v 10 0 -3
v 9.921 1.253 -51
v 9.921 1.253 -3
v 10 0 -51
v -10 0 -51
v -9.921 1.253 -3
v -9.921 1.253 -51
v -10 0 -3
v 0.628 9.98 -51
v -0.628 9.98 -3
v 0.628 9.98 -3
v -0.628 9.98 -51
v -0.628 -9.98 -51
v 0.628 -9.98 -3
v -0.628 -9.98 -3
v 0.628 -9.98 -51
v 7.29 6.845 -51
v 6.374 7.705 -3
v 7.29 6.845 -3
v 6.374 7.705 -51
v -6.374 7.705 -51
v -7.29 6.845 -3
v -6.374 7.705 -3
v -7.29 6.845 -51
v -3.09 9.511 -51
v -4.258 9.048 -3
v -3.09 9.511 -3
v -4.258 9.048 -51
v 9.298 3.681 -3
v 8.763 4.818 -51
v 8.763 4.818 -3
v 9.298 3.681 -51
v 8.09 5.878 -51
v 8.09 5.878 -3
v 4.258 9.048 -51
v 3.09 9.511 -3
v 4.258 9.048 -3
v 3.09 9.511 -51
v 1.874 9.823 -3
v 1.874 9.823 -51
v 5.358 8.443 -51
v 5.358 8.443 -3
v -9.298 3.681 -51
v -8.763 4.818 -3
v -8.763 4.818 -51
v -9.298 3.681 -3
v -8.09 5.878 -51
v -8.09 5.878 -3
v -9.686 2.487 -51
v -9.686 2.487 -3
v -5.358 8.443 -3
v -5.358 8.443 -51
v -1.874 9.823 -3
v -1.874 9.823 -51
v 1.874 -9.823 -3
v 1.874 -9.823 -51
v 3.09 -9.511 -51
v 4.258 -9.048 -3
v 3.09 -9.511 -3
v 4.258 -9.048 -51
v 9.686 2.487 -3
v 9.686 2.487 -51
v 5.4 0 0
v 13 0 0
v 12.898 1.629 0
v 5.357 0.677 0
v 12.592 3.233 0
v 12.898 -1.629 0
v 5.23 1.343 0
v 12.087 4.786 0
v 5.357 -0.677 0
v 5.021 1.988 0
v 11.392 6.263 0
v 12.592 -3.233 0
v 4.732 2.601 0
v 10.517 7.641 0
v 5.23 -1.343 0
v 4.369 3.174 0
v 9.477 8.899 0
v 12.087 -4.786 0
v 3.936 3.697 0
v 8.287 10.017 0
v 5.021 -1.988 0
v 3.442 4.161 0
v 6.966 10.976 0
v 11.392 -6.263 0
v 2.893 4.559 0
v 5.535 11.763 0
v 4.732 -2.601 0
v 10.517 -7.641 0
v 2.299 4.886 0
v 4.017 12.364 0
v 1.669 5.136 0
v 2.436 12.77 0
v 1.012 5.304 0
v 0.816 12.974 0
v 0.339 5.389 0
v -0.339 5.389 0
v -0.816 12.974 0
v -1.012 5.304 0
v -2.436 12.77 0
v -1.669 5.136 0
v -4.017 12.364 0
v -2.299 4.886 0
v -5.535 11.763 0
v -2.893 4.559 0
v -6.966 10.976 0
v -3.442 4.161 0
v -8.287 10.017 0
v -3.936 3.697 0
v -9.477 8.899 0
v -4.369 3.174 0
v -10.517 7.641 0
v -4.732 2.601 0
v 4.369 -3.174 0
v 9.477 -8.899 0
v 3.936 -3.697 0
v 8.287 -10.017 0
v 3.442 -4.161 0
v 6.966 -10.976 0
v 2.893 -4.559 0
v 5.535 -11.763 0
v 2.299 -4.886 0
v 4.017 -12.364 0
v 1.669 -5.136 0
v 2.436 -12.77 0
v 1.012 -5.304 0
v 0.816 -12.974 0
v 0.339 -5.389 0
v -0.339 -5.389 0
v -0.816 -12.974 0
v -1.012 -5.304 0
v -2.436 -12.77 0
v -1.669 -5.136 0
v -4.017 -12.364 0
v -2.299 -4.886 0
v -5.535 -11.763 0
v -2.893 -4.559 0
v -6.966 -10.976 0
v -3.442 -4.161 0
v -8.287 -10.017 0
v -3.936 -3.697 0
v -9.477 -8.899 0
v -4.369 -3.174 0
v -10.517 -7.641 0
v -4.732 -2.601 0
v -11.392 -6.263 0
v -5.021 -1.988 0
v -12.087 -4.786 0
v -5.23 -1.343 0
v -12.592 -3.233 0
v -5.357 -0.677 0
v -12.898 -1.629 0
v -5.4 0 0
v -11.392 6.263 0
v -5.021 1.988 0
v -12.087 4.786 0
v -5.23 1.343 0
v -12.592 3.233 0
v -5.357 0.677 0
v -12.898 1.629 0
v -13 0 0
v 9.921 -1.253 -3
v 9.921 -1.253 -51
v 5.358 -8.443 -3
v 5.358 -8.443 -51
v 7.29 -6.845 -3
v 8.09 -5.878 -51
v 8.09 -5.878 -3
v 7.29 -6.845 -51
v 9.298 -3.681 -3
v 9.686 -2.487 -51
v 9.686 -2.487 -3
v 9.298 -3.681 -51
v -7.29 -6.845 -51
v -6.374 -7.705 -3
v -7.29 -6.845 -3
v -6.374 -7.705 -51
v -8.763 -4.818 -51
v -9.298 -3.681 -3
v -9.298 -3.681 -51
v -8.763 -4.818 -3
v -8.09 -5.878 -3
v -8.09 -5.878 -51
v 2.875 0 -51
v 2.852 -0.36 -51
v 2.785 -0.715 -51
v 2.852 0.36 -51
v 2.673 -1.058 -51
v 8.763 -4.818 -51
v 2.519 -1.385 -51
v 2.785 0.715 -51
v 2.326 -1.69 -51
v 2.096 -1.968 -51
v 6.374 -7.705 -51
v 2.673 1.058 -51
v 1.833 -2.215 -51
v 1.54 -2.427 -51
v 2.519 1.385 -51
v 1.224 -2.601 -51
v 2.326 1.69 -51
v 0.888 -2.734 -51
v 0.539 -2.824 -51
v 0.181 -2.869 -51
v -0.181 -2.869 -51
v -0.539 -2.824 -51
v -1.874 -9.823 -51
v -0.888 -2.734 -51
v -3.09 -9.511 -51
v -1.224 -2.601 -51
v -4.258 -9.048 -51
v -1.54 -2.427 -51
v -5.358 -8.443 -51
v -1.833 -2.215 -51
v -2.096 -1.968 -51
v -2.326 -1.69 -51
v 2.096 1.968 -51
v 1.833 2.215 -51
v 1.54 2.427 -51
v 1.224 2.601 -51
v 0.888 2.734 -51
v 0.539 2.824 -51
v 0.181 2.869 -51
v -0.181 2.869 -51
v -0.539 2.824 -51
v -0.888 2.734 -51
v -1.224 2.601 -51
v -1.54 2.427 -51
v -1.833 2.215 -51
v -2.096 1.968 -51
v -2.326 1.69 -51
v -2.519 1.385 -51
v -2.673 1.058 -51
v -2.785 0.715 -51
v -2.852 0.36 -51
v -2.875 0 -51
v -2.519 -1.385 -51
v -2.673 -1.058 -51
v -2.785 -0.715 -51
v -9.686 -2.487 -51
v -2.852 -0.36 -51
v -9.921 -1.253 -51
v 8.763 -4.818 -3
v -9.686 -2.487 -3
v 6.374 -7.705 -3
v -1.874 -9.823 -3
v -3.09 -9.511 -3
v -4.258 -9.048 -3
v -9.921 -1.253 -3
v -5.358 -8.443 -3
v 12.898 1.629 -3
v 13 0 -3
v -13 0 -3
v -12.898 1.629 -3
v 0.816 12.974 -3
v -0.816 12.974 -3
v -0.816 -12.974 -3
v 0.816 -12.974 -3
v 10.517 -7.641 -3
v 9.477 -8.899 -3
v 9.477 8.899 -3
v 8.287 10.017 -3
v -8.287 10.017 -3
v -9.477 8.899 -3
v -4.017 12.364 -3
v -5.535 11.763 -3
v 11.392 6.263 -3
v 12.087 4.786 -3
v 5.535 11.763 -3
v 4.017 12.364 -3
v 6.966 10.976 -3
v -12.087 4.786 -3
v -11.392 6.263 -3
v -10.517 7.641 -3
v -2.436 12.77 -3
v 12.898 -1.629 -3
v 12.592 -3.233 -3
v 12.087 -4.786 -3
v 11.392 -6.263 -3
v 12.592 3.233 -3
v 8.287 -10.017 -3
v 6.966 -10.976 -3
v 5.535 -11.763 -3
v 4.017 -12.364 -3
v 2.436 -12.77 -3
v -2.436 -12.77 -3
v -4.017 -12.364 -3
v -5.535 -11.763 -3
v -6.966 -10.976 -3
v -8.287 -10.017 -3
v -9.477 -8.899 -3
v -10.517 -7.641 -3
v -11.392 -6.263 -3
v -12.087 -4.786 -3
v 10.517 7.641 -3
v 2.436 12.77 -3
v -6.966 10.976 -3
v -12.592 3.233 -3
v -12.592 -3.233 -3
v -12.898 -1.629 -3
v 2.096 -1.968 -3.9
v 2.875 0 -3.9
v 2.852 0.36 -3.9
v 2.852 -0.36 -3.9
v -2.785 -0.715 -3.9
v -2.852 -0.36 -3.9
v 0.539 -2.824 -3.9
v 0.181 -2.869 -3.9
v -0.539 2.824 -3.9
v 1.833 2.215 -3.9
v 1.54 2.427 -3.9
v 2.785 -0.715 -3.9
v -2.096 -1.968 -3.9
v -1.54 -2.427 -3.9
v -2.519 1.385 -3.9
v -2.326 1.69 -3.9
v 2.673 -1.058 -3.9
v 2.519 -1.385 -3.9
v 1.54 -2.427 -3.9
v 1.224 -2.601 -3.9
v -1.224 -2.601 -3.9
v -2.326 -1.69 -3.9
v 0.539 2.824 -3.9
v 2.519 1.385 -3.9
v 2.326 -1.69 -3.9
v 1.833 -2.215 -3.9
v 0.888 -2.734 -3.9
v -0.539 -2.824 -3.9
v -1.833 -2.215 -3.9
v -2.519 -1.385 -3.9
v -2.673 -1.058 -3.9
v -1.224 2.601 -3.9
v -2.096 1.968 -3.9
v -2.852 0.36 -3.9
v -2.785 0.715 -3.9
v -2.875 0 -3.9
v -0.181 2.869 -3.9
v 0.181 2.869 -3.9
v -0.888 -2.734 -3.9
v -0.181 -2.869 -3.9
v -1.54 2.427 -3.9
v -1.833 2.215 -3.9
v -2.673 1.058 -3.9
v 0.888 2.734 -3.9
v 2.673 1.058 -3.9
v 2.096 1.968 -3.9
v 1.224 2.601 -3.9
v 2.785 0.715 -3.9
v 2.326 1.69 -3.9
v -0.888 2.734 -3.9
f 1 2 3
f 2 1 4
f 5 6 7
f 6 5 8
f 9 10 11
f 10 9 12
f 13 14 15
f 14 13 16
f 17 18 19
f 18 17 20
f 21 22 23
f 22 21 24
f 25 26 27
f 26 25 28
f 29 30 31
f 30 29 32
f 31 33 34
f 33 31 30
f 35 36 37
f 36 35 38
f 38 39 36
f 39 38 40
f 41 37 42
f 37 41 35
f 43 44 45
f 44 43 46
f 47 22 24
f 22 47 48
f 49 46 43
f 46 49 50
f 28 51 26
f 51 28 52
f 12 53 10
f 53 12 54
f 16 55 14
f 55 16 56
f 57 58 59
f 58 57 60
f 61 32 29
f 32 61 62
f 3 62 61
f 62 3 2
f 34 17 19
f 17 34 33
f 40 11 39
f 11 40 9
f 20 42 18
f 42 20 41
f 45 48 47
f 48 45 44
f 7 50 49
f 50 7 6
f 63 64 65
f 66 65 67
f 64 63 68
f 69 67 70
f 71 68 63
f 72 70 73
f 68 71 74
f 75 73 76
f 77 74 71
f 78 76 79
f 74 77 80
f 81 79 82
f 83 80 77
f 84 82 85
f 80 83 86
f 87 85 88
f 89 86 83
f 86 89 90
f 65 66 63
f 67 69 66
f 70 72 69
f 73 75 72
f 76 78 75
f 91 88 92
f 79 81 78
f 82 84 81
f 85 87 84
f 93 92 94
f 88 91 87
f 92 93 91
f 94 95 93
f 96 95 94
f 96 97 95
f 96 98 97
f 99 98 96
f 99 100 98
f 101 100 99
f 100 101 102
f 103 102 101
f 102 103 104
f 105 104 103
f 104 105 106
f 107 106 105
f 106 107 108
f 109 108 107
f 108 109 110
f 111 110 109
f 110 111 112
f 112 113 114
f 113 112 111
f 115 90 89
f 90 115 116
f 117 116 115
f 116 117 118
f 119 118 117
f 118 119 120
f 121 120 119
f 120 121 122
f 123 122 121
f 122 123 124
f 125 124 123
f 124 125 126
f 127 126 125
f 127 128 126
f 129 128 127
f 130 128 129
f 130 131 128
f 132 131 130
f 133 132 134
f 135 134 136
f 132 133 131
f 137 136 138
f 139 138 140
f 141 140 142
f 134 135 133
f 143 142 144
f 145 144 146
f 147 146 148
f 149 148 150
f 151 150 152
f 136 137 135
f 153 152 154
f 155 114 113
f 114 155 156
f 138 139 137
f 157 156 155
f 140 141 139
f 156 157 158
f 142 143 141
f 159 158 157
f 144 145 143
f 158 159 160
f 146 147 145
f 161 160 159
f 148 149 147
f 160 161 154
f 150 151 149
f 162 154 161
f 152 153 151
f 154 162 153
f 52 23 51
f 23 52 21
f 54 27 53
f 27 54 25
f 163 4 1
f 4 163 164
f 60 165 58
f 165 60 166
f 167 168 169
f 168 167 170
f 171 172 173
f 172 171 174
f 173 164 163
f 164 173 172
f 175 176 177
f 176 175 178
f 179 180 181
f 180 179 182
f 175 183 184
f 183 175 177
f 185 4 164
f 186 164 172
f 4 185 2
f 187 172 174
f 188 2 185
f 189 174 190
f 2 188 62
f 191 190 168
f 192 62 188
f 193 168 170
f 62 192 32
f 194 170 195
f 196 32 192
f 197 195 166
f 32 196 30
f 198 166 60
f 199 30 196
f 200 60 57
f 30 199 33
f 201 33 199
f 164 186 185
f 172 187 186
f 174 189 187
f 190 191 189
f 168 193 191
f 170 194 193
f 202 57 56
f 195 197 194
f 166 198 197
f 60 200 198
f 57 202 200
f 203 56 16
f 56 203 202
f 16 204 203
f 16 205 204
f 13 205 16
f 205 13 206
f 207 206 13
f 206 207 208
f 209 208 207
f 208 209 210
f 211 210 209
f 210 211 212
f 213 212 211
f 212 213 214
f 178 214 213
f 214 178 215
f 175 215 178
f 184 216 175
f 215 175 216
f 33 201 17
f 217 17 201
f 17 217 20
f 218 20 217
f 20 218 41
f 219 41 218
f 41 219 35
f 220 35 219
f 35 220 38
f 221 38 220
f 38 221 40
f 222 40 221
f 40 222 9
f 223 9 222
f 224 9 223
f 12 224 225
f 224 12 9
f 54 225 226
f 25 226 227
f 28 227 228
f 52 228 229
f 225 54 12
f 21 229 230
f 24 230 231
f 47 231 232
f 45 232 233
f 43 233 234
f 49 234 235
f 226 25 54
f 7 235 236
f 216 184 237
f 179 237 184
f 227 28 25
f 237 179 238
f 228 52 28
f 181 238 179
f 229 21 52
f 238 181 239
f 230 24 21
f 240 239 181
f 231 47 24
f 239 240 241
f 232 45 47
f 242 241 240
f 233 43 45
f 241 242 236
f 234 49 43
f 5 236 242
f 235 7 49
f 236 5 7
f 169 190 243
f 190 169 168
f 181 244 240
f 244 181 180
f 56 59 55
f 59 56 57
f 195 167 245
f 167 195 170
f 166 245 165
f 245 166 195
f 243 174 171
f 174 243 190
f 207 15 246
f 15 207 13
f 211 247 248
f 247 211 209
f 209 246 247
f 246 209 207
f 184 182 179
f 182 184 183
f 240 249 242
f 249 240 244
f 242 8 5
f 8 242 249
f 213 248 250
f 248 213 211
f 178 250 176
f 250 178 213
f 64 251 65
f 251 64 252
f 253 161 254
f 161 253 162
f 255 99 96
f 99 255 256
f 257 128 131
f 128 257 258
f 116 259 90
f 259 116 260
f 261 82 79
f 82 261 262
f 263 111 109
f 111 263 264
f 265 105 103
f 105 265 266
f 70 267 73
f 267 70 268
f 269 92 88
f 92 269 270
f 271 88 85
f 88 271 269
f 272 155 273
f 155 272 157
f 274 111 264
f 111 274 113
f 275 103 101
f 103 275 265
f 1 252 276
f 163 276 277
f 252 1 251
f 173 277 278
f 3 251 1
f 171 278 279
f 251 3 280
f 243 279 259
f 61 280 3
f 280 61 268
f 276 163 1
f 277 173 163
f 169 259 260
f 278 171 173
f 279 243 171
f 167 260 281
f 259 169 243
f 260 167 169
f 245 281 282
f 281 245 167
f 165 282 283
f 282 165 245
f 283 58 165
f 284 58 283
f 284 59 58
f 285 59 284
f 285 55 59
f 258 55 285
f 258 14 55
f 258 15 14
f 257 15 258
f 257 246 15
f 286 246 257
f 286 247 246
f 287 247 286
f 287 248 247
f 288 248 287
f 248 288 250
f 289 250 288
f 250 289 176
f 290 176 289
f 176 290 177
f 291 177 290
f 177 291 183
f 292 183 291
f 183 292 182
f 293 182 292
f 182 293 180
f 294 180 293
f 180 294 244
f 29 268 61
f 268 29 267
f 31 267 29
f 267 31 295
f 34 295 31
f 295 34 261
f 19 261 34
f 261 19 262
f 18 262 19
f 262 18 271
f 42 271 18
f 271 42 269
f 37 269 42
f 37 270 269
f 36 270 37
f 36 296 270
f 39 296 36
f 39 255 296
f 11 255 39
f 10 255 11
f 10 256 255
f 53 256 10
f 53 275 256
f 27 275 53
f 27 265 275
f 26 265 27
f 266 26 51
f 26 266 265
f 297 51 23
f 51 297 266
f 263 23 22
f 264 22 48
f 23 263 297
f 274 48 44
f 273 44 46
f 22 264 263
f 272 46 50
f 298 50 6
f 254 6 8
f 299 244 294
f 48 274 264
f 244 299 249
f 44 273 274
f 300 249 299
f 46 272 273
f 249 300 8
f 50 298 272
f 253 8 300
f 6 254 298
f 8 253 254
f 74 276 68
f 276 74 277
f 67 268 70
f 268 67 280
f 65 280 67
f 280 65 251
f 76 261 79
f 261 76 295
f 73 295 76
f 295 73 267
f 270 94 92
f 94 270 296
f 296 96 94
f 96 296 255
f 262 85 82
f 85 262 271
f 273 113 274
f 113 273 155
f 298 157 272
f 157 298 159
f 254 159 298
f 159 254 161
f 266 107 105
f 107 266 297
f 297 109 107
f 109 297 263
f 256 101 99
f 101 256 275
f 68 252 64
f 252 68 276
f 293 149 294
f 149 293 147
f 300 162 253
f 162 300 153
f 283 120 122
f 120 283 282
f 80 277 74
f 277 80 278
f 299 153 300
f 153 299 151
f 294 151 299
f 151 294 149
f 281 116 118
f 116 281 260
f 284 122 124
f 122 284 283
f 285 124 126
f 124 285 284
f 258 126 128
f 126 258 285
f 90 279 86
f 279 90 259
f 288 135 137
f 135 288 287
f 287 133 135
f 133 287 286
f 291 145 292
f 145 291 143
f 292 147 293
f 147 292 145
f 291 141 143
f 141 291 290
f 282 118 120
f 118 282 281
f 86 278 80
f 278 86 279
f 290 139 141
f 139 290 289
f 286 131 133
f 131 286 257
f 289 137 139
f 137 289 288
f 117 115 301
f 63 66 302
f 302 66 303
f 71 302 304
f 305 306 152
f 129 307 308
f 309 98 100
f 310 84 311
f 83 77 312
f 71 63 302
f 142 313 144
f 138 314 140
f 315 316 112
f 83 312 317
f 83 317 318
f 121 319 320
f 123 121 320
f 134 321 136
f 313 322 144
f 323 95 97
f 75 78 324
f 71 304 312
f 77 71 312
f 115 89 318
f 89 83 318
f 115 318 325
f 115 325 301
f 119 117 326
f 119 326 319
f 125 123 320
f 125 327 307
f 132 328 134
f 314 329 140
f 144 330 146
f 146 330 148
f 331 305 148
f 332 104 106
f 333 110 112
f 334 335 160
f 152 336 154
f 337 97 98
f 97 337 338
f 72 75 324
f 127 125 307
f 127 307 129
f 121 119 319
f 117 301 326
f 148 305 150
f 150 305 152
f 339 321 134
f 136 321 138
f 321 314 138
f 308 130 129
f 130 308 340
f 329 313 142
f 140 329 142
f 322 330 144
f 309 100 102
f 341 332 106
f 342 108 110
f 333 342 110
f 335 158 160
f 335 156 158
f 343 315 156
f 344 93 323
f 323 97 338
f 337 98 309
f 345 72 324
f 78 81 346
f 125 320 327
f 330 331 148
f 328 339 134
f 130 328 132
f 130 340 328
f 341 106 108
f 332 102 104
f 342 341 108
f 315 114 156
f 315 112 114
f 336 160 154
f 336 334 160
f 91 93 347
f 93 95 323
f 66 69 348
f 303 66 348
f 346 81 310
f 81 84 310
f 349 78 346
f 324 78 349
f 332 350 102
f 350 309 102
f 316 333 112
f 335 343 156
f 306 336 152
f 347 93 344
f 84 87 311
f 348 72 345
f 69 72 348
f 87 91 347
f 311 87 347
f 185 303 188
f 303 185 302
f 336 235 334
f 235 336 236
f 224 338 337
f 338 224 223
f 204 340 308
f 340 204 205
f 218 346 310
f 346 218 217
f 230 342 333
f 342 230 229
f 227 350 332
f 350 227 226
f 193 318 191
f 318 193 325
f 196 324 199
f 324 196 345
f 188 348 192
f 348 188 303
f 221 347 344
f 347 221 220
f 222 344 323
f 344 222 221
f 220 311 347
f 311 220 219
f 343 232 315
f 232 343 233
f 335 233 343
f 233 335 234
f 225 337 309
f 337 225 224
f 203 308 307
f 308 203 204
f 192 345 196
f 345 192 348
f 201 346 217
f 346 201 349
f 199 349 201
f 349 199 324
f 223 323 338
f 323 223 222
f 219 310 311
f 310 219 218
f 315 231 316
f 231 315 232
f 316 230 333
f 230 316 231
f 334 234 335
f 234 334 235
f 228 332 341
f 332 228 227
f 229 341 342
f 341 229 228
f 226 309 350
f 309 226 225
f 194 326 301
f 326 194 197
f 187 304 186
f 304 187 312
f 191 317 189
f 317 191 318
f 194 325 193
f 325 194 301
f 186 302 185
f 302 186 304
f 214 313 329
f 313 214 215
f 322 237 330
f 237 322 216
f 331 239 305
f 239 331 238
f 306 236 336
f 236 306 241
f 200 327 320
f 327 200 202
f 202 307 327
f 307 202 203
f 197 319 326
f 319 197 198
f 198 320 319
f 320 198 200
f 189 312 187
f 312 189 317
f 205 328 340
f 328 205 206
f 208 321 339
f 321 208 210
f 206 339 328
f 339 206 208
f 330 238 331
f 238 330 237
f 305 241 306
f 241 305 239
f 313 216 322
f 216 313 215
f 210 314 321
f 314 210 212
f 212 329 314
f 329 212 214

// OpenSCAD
$fn = 50;


difference() {
	union() {
		translate(v = [0, 0, -51.0000000000]) {
			cylinder(h = 51, r = 10.0000000000);
		}
		translate(v = [0, 0, -3.0000000000]) {
			cylinder(h = 3, r = 13.0000000000);
		}
	}
	union() {
		translate(v = [0, 0, 0]) {
			rotate(a = [0, 0, 0]) {
				difference() {
					union() {
						#translate(v = [0, 0, -51.0000000000]) {
							cylinder(h = 51, r = 2.6000000000);
						}
						#translate(v = [0, 0, -3.9000000000]) {
							cylinder(h = 3.9000000000, r1 = 2.8750000000, r2 = 5.4000000000);
						}
						#translate(v = [0, 0, -51.0000000000]) {
							cylinder(h = 51, r = 2.8750000000);
						}
						#translate(v = [0, 0, -51.0000000000]) {
							cylinder(h = 51, r = 2.6000000000);
						}
					}
					union();
				}
			}
		}
	}
}
